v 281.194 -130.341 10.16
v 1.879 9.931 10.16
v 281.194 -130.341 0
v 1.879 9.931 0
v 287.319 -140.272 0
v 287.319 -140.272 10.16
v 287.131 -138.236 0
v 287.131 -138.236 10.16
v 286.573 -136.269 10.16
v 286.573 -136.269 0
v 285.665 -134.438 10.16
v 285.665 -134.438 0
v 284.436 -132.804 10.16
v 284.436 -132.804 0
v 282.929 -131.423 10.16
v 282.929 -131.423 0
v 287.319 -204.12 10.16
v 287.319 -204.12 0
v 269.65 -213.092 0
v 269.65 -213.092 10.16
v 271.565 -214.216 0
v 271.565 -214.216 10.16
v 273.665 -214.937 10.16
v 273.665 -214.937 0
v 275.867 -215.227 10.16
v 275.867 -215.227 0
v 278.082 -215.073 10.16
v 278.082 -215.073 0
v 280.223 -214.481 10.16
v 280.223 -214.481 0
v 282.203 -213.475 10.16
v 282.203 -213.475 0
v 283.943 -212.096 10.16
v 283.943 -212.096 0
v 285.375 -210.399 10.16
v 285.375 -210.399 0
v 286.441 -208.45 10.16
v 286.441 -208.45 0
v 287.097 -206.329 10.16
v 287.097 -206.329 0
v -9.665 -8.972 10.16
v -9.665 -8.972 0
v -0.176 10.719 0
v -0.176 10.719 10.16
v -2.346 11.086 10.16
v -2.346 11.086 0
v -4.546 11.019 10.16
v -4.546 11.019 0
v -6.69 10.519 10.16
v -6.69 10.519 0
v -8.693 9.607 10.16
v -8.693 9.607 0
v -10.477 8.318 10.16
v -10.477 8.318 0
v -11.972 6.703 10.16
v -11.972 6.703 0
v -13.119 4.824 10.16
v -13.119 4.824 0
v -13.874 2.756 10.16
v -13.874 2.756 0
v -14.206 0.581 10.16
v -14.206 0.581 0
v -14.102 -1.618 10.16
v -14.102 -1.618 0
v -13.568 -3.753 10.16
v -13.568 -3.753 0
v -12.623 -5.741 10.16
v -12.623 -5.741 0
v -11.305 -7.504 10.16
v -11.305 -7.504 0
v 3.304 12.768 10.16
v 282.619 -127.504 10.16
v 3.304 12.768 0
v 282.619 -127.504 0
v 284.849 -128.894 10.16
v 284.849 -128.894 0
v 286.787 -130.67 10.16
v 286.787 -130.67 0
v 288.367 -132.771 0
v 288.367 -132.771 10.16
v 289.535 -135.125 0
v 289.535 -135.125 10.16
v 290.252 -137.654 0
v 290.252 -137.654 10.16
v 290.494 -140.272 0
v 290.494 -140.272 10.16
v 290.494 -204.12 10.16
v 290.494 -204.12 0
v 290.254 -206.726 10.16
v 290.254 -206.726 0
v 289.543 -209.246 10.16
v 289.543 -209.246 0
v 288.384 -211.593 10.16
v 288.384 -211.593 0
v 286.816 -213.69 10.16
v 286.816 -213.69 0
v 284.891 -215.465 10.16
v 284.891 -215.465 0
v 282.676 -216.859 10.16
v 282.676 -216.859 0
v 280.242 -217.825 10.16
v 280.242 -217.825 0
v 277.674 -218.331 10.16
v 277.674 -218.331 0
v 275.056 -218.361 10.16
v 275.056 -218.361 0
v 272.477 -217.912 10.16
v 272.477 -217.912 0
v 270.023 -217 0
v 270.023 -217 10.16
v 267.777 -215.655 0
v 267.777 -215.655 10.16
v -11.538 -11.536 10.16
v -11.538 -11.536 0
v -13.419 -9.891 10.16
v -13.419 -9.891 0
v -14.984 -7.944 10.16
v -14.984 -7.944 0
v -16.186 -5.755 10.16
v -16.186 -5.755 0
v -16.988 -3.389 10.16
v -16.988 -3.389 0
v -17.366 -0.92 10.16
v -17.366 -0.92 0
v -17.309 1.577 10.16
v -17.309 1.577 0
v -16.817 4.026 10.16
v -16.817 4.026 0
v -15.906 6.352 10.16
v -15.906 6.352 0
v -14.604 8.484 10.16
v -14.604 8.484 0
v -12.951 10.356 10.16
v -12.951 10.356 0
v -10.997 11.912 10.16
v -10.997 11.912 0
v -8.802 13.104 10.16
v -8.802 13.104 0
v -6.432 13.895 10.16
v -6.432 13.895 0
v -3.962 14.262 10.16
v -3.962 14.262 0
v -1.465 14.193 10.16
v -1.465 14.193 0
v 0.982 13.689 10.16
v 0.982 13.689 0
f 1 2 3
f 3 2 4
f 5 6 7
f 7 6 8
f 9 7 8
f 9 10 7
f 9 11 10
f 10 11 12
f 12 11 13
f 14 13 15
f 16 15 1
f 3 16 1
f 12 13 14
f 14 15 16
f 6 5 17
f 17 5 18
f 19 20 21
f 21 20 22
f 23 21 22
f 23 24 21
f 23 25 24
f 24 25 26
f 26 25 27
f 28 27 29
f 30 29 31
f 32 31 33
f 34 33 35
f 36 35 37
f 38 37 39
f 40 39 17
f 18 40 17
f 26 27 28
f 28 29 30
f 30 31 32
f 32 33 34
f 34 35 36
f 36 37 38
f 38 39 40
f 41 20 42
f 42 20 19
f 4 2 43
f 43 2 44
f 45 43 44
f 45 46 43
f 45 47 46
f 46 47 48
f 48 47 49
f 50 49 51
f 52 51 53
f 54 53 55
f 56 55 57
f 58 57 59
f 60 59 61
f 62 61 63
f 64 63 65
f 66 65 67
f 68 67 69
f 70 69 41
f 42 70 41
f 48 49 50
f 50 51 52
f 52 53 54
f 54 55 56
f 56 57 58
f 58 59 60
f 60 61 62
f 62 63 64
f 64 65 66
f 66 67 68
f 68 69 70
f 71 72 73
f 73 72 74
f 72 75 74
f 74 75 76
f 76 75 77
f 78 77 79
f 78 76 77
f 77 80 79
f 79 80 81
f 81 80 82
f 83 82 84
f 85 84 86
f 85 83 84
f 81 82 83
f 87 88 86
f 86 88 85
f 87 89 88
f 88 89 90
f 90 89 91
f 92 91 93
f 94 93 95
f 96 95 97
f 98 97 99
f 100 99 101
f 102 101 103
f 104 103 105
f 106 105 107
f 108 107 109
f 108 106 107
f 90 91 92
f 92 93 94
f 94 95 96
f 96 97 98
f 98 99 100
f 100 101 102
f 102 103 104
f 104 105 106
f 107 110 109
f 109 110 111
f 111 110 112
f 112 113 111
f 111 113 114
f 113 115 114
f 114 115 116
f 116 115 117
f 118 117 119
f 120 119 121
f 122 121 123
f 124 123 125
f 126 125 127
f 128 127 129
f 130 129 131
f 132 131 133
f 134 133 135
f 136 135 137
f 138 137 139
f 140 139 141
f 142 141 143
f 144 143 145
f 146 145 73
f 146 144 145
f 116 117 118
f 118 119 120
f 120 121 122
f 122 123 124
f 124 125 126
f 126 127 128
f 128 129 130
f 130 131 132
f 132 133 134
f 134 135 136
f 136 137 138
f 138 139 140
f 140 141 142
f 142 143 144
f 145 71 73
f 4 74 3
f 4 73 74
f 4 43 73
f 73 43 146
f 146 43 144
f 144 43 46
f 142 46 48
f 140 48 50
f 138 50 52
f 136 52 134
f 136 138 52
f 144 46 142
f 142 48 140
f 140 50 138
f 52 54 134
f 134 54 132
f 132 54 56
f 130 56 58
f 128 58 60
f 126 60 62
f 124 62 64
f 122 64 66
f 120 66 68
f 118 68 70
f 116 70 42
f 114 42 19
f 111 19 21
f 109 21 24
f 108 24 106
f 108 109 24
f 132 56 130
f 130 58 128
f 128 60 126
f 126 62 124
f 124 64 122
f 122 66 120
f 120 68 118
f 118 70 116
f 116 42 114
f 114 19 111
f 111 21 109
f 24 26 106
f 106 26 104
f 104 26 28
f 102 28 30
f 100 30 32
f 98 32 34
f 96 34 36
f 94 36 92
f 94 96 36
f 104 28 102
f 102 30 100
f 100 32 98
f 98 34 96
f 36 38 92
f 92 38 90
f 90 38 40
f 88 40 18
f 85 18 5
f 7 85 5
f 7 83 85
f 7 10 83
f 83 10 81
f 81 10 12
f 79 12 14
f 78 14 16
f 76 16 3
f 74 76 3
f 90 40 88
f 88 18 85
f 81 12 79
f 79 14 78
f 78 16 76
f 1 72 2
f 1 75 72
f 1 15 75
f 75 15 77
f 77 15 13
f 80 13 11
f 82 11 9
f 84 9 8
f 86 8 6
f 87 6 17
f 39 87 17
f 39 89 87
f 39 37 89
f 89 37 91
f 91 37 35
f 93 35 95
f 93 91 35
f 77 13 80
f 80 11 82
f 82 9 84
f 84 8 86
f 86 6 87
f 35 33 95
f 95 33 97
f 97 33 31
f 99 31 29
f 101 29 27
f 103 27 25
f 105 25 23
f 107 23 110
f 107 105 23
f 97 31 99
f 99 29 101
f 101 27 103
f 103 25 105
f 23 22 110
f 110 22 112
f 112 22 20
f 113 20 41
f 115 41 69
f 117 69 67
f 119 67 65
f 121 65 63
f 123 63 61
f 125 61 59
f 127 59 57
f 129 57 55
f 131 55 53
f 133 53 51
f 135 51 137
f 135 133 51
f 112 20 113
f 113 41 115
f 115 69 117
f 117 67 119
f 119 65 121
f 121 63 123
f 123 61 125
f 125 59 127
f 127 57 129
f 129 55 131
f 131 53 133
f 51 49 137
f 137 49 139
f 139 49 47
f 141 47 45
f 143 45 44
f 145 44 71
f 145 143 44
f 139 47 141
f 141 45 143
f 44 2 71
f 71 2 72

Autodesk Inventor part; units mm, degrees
ref_plane "YZ Plane" through (0, 0, 0) normal (1, 0, 0) x (0, 1, 0)
ref_plane "XZ Plane" through (0, 0, 0) normal (0, 1, 0) x (-1, 0, 0)
ref_plane "XY Plane" through (0, 0, 0) normal (0, 0, 1) x (1, 0, 0)
sketch "Sketch1" plane through (0, 0, 0) normal (0, 0, 1) x (1, 0, 0)
  arc A0 (1.8788, 9.9306) -> (-9.665, -8.9721) centre (-3.1084, 0) ccw
  arc A1 (287.3193, -140.2716) -> (281.1939, -130.341) centre (276.2068, -140.2716) ccw
  arc A2 (269.6501, -213.0916) -> (287.3193, -204.1195) centre (276.2068, -204.1195) ccw
  line L0 (1.8788, 9.9306) -> (281.1939, -130.341)
  line L1 (287.3193, -140.2716) -> (287.3193, -204.1195)
  line L2 (269.6501, -213.0916) -> (-9.665, -8.9721)
  arc A3 (3.3036, 12.7679) -> (-11.5383, -11.5355) centre (-3.1084, 0) ccw
  arc A4 (290.4943, -140.2716) -> (282.6188, -127.5037) centre (276.2068, -140.2716) ccw
  arc A5 (267.7768, -215.655) -> (290.4943, -204.1195) centre (276.2068, -204.1195) ccw
  line L3 (290.4943, -140.2716) -> (290.4943, -204.1195)
  line L4 (-11.5383, -11.5355) -> (267.7768, -215.655)
  line L5 (282.6188, -127.5037) -> (3.3036, 12.7679)
  point P0 (0, 0)
  dimension "d0" = 11.1125
  dimension "d1" = 3.175
extrude "Extrusion1" add sketch "Sketch1" along normal blind 10.16
properties part number "ShooterBelt" material "Rubber"
